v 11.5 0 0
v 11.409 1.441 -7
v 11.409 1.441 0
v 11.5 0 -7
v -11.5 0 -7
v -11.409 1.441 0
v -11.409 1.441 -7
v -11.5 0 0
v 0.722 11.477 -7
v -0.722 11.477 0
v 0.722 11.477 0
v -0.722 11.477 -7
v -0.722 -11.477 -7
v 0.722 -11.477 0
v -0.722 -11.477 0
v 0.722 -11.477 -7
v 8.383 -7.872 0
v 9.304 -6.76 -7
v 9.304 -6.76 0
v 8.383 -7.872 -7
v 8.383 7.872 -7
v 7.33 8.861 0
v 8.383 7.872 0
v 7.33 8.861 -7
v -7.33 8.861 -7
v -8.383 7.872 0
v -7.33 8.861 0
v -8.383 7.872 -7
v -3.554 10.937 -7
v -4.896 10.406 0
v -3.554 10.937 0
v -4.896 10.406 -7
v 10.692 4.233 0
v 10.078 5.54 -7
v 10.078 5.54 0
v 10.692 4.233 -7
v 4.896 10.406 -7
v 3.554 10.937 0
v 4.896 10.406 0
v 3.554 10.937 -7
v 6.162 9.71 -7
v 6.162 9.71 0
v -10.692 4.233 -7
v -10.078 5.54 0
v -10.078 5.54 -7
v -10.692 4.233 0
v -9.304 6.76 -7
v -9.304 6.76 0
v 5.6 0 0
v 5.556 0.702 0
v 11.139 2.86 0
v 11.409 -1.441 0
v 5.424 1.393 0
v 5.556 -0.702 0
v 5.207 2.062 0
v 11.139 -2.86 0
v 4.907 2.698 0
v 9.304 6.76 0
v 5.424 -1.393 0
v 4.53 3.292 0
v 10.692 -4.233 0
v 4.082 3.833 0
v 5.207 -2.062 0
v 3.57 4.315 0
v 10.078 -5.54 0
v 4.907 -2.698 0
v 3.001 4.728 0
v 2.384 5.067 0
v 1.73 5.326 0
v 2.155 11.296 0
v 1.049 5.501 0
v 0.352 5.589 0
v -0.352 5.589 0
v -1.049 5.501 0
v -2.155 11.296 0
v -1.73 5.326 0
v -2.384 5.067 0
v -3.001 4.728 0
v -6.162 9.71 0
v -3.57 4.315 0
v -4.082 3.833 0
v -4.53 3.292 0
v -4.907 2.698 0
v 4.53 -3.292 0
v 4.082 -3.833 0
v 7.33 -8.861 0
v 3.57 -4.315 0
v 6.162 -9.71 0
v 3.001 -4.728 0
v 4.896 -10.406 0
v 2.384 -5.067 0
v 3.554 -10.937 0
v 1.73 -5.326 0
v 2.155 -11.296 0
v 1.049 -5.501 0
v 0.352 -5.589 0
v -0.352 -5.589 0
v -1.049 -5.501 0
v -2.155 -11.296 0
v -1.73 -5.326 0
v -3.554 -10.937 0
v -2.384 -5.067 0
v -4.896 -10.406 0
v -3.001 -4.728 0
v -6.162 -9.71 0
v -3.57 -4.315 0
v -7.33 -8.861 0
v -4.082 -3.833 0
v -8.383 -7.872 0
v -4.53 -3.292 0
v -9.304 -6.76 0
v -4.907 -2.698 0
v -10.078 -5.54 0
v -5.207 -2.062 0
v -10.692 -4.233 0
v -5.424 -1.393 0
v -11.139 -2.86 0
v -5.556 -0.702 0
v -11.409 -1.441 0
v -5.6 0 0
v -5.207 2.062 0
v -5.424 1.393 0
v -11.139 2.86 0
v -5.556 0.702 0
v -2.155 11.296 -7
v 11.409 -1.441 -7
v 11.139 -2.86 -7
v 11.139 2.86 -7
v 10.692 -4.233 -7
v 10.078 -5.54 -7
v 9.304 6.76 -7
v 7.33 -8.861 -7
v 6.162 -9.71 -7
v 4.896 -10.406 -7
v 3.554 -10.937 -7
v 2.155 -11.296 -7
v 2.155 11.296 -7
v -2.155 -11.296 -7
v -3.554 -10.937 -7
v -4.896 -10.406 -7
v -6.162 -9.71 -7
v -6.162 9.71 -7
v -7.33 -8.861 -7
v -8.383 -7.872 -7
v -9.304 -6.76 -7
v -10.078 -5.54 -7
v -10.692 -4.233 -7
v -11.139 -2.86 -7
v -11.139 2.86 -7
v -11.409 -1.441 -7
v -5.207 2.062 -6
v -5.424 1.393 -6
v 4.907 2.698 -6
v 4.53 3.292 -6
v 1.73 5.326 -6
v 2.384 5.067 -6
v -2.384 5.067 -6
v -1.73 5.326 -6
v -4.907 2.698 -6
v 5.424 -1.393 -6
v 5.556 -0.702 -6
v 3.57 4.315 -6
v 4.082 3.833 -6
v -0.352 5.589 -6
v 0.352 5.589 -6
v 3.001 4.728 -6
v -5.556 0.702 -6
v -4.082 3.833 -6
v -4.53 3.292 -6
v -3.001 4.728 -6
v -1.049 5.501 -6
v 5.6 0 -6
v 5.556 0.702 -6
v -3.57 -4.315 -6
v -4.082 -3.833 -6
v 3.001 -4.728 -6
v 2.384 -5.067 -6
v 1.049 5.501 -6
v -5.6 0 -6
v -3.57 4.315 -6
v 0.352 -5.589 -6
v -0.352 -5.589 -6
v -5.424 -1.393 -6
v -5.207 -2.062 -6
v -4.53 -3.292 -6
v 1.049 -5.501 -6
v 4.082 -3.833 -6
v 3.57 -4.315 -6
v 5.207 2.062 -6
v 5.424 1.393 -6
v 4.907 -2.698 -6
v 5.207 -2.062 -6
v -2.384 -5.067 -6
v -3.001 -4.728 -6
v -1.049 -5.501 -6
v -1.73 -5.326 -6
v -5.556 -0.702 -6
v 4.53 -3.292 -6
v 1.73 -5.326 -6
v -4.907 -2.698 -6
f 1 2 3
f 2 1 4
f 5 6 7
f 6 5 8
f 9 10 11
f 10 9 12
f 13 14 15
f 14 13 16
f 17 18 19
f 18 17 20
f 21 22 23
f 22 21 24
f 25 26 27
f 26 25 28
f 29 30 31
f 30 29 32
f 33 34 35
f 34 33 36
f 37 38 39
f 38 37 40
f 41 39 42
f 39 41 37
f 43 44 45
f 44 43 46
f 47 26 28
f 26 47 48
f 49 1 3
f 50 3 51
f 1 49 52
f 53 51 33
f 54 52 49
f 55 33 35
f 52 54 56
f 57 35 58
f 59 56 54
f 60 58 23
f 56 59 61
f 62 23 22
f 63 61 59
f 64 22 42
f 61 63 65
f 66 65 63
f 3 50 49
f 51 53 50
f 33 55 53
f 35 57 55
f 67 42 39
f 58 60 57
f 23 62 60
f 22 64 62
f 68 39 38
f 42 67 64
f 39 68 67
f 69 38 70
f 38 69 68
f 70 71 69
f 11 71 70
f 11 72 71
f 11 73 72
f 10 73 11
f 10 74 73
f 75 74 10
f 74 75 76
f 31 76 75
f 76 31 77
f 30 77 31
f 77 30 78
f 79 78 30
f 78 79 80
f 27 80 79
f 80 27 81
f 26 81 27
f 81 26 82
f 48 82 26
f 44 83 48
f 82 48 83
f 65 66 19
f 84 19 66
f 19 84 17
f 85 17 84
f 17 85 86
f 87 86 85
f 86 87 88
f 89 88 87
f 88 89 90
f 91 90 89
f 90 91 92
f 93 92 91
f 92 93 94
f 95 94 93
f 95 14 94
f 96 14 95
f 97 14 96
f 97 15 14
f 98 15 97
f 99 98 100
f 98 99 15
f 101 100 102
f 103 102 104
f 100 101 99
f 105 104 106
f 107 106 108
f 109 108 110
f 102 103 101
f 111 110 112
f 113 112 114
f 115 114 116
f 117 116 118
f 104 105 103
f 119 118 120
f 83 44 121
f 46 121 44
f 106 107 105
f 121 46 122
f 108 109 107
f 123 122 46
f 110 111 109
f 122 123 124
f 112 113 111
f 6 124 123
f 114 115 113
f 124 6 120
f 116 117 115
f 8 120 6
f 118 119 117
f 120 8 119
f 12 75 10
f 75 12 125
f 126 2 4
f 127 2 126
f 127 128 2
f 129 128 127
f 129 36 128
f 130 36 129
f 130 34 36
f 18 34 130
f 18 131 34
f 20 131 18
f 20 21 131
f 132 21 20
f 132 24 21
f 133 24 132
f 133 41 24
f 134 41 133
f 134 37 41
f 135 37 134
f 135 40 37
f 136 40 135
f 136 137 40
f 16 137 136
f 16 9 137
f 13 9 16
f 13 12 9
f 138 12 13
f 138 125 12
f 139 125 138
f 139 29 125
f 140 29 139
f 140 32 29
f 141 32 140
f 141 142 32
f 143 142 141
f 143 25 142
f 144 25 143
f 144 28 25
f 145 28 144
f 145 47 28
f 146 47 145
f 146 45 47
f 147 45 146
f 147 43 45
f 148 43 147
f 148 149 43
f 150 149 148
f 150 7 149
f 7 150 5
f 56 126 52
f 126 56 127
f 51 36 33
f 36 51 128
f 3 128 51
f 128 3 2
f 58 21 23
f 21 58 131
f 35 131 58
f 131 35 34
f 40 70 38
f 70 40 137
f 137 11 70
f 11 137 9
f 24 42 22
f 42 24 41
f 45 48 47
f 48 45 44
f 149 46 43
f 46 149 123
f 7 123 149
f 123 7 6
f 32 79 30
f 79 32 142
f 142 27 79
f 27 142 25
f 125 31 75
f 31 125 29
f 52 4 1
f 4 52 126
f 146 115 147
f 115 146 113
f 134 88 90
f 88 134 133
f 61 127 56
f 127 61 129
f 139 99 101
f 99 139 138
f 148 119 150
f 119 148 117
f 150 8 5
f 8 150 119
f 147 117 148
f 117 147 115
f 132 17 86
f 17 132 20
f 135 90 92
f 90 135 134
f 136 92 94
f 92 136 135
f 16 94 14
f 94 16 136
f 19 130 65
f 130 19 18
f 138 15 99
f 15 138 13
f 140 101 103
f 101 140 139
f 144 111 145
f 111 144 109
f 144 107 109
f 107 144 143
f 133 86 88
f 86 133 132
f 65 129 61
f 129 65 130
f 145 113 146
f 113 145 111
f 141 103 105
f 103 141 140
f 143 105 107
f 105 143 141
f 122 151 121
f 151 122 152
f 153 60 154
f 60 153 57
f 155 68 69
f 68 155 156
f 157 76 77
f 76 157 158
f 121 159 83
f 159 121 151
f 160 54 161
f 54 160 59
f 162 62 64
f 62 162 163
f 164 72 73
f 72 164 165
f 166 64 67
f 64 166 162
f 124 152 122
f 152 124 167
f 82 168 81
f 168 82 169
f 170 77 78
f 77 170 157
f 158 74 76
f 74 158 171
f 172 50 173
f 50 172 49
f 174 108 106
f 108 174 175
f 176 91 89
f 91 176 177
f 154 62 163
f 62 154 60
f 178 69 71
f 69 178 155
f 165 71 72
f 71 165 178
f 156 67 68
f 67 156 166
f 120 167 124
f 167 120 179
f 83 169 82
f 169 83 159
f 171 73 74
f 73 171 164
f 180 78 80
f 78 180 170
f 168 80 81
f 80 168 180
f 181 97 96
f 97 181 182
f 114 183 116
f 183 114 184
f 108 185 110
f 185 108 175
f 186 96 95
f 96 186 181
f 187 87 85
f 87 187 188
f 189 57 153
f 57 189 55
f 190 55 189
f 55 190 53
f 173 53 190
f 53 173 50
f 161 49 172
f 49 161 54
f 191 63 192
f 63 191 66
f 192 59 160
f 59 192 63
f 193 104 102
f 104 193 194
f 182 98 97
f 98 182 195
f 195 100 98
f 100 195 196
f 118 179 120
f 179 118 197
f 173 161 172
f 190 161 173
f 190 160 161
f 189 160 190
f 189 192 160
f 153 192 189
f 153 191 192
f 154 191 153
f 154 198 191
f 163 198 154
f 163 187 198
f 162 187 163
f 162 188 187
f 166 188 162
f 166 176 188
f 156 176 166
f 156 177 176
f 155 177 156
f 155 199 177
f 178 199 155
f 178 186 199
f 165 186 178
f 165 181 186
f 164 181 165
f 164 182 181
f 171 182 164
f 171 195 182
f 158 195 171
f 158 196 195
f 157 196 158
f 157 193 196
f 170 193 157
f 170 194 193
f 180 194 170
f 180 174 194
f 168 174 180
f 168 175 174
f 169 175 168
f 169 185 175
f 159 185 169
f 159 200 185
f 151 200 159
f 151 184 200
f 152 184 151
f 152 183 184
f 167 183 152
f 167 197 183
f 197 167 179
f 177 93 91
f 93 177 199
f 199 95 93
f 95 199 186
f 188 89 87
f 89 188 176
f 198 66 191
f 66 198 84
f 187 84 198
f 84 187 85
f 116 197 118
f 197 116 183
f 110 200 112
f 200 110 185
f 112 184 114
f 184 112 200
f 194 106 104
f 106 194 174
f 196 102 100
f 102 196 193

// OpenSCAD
$fn = 50;


difference() {
	union() {
		translate(v = [0, 0, -7.0000000000]) {
			cylinder(h = 7, r = 11.5000000000);
		}
	}
	union() {
		#translate(v = [0, 0, -6.0000000000]) {
			cylinder(h = 6, r = 5.6000000000);
		}
	}
}
